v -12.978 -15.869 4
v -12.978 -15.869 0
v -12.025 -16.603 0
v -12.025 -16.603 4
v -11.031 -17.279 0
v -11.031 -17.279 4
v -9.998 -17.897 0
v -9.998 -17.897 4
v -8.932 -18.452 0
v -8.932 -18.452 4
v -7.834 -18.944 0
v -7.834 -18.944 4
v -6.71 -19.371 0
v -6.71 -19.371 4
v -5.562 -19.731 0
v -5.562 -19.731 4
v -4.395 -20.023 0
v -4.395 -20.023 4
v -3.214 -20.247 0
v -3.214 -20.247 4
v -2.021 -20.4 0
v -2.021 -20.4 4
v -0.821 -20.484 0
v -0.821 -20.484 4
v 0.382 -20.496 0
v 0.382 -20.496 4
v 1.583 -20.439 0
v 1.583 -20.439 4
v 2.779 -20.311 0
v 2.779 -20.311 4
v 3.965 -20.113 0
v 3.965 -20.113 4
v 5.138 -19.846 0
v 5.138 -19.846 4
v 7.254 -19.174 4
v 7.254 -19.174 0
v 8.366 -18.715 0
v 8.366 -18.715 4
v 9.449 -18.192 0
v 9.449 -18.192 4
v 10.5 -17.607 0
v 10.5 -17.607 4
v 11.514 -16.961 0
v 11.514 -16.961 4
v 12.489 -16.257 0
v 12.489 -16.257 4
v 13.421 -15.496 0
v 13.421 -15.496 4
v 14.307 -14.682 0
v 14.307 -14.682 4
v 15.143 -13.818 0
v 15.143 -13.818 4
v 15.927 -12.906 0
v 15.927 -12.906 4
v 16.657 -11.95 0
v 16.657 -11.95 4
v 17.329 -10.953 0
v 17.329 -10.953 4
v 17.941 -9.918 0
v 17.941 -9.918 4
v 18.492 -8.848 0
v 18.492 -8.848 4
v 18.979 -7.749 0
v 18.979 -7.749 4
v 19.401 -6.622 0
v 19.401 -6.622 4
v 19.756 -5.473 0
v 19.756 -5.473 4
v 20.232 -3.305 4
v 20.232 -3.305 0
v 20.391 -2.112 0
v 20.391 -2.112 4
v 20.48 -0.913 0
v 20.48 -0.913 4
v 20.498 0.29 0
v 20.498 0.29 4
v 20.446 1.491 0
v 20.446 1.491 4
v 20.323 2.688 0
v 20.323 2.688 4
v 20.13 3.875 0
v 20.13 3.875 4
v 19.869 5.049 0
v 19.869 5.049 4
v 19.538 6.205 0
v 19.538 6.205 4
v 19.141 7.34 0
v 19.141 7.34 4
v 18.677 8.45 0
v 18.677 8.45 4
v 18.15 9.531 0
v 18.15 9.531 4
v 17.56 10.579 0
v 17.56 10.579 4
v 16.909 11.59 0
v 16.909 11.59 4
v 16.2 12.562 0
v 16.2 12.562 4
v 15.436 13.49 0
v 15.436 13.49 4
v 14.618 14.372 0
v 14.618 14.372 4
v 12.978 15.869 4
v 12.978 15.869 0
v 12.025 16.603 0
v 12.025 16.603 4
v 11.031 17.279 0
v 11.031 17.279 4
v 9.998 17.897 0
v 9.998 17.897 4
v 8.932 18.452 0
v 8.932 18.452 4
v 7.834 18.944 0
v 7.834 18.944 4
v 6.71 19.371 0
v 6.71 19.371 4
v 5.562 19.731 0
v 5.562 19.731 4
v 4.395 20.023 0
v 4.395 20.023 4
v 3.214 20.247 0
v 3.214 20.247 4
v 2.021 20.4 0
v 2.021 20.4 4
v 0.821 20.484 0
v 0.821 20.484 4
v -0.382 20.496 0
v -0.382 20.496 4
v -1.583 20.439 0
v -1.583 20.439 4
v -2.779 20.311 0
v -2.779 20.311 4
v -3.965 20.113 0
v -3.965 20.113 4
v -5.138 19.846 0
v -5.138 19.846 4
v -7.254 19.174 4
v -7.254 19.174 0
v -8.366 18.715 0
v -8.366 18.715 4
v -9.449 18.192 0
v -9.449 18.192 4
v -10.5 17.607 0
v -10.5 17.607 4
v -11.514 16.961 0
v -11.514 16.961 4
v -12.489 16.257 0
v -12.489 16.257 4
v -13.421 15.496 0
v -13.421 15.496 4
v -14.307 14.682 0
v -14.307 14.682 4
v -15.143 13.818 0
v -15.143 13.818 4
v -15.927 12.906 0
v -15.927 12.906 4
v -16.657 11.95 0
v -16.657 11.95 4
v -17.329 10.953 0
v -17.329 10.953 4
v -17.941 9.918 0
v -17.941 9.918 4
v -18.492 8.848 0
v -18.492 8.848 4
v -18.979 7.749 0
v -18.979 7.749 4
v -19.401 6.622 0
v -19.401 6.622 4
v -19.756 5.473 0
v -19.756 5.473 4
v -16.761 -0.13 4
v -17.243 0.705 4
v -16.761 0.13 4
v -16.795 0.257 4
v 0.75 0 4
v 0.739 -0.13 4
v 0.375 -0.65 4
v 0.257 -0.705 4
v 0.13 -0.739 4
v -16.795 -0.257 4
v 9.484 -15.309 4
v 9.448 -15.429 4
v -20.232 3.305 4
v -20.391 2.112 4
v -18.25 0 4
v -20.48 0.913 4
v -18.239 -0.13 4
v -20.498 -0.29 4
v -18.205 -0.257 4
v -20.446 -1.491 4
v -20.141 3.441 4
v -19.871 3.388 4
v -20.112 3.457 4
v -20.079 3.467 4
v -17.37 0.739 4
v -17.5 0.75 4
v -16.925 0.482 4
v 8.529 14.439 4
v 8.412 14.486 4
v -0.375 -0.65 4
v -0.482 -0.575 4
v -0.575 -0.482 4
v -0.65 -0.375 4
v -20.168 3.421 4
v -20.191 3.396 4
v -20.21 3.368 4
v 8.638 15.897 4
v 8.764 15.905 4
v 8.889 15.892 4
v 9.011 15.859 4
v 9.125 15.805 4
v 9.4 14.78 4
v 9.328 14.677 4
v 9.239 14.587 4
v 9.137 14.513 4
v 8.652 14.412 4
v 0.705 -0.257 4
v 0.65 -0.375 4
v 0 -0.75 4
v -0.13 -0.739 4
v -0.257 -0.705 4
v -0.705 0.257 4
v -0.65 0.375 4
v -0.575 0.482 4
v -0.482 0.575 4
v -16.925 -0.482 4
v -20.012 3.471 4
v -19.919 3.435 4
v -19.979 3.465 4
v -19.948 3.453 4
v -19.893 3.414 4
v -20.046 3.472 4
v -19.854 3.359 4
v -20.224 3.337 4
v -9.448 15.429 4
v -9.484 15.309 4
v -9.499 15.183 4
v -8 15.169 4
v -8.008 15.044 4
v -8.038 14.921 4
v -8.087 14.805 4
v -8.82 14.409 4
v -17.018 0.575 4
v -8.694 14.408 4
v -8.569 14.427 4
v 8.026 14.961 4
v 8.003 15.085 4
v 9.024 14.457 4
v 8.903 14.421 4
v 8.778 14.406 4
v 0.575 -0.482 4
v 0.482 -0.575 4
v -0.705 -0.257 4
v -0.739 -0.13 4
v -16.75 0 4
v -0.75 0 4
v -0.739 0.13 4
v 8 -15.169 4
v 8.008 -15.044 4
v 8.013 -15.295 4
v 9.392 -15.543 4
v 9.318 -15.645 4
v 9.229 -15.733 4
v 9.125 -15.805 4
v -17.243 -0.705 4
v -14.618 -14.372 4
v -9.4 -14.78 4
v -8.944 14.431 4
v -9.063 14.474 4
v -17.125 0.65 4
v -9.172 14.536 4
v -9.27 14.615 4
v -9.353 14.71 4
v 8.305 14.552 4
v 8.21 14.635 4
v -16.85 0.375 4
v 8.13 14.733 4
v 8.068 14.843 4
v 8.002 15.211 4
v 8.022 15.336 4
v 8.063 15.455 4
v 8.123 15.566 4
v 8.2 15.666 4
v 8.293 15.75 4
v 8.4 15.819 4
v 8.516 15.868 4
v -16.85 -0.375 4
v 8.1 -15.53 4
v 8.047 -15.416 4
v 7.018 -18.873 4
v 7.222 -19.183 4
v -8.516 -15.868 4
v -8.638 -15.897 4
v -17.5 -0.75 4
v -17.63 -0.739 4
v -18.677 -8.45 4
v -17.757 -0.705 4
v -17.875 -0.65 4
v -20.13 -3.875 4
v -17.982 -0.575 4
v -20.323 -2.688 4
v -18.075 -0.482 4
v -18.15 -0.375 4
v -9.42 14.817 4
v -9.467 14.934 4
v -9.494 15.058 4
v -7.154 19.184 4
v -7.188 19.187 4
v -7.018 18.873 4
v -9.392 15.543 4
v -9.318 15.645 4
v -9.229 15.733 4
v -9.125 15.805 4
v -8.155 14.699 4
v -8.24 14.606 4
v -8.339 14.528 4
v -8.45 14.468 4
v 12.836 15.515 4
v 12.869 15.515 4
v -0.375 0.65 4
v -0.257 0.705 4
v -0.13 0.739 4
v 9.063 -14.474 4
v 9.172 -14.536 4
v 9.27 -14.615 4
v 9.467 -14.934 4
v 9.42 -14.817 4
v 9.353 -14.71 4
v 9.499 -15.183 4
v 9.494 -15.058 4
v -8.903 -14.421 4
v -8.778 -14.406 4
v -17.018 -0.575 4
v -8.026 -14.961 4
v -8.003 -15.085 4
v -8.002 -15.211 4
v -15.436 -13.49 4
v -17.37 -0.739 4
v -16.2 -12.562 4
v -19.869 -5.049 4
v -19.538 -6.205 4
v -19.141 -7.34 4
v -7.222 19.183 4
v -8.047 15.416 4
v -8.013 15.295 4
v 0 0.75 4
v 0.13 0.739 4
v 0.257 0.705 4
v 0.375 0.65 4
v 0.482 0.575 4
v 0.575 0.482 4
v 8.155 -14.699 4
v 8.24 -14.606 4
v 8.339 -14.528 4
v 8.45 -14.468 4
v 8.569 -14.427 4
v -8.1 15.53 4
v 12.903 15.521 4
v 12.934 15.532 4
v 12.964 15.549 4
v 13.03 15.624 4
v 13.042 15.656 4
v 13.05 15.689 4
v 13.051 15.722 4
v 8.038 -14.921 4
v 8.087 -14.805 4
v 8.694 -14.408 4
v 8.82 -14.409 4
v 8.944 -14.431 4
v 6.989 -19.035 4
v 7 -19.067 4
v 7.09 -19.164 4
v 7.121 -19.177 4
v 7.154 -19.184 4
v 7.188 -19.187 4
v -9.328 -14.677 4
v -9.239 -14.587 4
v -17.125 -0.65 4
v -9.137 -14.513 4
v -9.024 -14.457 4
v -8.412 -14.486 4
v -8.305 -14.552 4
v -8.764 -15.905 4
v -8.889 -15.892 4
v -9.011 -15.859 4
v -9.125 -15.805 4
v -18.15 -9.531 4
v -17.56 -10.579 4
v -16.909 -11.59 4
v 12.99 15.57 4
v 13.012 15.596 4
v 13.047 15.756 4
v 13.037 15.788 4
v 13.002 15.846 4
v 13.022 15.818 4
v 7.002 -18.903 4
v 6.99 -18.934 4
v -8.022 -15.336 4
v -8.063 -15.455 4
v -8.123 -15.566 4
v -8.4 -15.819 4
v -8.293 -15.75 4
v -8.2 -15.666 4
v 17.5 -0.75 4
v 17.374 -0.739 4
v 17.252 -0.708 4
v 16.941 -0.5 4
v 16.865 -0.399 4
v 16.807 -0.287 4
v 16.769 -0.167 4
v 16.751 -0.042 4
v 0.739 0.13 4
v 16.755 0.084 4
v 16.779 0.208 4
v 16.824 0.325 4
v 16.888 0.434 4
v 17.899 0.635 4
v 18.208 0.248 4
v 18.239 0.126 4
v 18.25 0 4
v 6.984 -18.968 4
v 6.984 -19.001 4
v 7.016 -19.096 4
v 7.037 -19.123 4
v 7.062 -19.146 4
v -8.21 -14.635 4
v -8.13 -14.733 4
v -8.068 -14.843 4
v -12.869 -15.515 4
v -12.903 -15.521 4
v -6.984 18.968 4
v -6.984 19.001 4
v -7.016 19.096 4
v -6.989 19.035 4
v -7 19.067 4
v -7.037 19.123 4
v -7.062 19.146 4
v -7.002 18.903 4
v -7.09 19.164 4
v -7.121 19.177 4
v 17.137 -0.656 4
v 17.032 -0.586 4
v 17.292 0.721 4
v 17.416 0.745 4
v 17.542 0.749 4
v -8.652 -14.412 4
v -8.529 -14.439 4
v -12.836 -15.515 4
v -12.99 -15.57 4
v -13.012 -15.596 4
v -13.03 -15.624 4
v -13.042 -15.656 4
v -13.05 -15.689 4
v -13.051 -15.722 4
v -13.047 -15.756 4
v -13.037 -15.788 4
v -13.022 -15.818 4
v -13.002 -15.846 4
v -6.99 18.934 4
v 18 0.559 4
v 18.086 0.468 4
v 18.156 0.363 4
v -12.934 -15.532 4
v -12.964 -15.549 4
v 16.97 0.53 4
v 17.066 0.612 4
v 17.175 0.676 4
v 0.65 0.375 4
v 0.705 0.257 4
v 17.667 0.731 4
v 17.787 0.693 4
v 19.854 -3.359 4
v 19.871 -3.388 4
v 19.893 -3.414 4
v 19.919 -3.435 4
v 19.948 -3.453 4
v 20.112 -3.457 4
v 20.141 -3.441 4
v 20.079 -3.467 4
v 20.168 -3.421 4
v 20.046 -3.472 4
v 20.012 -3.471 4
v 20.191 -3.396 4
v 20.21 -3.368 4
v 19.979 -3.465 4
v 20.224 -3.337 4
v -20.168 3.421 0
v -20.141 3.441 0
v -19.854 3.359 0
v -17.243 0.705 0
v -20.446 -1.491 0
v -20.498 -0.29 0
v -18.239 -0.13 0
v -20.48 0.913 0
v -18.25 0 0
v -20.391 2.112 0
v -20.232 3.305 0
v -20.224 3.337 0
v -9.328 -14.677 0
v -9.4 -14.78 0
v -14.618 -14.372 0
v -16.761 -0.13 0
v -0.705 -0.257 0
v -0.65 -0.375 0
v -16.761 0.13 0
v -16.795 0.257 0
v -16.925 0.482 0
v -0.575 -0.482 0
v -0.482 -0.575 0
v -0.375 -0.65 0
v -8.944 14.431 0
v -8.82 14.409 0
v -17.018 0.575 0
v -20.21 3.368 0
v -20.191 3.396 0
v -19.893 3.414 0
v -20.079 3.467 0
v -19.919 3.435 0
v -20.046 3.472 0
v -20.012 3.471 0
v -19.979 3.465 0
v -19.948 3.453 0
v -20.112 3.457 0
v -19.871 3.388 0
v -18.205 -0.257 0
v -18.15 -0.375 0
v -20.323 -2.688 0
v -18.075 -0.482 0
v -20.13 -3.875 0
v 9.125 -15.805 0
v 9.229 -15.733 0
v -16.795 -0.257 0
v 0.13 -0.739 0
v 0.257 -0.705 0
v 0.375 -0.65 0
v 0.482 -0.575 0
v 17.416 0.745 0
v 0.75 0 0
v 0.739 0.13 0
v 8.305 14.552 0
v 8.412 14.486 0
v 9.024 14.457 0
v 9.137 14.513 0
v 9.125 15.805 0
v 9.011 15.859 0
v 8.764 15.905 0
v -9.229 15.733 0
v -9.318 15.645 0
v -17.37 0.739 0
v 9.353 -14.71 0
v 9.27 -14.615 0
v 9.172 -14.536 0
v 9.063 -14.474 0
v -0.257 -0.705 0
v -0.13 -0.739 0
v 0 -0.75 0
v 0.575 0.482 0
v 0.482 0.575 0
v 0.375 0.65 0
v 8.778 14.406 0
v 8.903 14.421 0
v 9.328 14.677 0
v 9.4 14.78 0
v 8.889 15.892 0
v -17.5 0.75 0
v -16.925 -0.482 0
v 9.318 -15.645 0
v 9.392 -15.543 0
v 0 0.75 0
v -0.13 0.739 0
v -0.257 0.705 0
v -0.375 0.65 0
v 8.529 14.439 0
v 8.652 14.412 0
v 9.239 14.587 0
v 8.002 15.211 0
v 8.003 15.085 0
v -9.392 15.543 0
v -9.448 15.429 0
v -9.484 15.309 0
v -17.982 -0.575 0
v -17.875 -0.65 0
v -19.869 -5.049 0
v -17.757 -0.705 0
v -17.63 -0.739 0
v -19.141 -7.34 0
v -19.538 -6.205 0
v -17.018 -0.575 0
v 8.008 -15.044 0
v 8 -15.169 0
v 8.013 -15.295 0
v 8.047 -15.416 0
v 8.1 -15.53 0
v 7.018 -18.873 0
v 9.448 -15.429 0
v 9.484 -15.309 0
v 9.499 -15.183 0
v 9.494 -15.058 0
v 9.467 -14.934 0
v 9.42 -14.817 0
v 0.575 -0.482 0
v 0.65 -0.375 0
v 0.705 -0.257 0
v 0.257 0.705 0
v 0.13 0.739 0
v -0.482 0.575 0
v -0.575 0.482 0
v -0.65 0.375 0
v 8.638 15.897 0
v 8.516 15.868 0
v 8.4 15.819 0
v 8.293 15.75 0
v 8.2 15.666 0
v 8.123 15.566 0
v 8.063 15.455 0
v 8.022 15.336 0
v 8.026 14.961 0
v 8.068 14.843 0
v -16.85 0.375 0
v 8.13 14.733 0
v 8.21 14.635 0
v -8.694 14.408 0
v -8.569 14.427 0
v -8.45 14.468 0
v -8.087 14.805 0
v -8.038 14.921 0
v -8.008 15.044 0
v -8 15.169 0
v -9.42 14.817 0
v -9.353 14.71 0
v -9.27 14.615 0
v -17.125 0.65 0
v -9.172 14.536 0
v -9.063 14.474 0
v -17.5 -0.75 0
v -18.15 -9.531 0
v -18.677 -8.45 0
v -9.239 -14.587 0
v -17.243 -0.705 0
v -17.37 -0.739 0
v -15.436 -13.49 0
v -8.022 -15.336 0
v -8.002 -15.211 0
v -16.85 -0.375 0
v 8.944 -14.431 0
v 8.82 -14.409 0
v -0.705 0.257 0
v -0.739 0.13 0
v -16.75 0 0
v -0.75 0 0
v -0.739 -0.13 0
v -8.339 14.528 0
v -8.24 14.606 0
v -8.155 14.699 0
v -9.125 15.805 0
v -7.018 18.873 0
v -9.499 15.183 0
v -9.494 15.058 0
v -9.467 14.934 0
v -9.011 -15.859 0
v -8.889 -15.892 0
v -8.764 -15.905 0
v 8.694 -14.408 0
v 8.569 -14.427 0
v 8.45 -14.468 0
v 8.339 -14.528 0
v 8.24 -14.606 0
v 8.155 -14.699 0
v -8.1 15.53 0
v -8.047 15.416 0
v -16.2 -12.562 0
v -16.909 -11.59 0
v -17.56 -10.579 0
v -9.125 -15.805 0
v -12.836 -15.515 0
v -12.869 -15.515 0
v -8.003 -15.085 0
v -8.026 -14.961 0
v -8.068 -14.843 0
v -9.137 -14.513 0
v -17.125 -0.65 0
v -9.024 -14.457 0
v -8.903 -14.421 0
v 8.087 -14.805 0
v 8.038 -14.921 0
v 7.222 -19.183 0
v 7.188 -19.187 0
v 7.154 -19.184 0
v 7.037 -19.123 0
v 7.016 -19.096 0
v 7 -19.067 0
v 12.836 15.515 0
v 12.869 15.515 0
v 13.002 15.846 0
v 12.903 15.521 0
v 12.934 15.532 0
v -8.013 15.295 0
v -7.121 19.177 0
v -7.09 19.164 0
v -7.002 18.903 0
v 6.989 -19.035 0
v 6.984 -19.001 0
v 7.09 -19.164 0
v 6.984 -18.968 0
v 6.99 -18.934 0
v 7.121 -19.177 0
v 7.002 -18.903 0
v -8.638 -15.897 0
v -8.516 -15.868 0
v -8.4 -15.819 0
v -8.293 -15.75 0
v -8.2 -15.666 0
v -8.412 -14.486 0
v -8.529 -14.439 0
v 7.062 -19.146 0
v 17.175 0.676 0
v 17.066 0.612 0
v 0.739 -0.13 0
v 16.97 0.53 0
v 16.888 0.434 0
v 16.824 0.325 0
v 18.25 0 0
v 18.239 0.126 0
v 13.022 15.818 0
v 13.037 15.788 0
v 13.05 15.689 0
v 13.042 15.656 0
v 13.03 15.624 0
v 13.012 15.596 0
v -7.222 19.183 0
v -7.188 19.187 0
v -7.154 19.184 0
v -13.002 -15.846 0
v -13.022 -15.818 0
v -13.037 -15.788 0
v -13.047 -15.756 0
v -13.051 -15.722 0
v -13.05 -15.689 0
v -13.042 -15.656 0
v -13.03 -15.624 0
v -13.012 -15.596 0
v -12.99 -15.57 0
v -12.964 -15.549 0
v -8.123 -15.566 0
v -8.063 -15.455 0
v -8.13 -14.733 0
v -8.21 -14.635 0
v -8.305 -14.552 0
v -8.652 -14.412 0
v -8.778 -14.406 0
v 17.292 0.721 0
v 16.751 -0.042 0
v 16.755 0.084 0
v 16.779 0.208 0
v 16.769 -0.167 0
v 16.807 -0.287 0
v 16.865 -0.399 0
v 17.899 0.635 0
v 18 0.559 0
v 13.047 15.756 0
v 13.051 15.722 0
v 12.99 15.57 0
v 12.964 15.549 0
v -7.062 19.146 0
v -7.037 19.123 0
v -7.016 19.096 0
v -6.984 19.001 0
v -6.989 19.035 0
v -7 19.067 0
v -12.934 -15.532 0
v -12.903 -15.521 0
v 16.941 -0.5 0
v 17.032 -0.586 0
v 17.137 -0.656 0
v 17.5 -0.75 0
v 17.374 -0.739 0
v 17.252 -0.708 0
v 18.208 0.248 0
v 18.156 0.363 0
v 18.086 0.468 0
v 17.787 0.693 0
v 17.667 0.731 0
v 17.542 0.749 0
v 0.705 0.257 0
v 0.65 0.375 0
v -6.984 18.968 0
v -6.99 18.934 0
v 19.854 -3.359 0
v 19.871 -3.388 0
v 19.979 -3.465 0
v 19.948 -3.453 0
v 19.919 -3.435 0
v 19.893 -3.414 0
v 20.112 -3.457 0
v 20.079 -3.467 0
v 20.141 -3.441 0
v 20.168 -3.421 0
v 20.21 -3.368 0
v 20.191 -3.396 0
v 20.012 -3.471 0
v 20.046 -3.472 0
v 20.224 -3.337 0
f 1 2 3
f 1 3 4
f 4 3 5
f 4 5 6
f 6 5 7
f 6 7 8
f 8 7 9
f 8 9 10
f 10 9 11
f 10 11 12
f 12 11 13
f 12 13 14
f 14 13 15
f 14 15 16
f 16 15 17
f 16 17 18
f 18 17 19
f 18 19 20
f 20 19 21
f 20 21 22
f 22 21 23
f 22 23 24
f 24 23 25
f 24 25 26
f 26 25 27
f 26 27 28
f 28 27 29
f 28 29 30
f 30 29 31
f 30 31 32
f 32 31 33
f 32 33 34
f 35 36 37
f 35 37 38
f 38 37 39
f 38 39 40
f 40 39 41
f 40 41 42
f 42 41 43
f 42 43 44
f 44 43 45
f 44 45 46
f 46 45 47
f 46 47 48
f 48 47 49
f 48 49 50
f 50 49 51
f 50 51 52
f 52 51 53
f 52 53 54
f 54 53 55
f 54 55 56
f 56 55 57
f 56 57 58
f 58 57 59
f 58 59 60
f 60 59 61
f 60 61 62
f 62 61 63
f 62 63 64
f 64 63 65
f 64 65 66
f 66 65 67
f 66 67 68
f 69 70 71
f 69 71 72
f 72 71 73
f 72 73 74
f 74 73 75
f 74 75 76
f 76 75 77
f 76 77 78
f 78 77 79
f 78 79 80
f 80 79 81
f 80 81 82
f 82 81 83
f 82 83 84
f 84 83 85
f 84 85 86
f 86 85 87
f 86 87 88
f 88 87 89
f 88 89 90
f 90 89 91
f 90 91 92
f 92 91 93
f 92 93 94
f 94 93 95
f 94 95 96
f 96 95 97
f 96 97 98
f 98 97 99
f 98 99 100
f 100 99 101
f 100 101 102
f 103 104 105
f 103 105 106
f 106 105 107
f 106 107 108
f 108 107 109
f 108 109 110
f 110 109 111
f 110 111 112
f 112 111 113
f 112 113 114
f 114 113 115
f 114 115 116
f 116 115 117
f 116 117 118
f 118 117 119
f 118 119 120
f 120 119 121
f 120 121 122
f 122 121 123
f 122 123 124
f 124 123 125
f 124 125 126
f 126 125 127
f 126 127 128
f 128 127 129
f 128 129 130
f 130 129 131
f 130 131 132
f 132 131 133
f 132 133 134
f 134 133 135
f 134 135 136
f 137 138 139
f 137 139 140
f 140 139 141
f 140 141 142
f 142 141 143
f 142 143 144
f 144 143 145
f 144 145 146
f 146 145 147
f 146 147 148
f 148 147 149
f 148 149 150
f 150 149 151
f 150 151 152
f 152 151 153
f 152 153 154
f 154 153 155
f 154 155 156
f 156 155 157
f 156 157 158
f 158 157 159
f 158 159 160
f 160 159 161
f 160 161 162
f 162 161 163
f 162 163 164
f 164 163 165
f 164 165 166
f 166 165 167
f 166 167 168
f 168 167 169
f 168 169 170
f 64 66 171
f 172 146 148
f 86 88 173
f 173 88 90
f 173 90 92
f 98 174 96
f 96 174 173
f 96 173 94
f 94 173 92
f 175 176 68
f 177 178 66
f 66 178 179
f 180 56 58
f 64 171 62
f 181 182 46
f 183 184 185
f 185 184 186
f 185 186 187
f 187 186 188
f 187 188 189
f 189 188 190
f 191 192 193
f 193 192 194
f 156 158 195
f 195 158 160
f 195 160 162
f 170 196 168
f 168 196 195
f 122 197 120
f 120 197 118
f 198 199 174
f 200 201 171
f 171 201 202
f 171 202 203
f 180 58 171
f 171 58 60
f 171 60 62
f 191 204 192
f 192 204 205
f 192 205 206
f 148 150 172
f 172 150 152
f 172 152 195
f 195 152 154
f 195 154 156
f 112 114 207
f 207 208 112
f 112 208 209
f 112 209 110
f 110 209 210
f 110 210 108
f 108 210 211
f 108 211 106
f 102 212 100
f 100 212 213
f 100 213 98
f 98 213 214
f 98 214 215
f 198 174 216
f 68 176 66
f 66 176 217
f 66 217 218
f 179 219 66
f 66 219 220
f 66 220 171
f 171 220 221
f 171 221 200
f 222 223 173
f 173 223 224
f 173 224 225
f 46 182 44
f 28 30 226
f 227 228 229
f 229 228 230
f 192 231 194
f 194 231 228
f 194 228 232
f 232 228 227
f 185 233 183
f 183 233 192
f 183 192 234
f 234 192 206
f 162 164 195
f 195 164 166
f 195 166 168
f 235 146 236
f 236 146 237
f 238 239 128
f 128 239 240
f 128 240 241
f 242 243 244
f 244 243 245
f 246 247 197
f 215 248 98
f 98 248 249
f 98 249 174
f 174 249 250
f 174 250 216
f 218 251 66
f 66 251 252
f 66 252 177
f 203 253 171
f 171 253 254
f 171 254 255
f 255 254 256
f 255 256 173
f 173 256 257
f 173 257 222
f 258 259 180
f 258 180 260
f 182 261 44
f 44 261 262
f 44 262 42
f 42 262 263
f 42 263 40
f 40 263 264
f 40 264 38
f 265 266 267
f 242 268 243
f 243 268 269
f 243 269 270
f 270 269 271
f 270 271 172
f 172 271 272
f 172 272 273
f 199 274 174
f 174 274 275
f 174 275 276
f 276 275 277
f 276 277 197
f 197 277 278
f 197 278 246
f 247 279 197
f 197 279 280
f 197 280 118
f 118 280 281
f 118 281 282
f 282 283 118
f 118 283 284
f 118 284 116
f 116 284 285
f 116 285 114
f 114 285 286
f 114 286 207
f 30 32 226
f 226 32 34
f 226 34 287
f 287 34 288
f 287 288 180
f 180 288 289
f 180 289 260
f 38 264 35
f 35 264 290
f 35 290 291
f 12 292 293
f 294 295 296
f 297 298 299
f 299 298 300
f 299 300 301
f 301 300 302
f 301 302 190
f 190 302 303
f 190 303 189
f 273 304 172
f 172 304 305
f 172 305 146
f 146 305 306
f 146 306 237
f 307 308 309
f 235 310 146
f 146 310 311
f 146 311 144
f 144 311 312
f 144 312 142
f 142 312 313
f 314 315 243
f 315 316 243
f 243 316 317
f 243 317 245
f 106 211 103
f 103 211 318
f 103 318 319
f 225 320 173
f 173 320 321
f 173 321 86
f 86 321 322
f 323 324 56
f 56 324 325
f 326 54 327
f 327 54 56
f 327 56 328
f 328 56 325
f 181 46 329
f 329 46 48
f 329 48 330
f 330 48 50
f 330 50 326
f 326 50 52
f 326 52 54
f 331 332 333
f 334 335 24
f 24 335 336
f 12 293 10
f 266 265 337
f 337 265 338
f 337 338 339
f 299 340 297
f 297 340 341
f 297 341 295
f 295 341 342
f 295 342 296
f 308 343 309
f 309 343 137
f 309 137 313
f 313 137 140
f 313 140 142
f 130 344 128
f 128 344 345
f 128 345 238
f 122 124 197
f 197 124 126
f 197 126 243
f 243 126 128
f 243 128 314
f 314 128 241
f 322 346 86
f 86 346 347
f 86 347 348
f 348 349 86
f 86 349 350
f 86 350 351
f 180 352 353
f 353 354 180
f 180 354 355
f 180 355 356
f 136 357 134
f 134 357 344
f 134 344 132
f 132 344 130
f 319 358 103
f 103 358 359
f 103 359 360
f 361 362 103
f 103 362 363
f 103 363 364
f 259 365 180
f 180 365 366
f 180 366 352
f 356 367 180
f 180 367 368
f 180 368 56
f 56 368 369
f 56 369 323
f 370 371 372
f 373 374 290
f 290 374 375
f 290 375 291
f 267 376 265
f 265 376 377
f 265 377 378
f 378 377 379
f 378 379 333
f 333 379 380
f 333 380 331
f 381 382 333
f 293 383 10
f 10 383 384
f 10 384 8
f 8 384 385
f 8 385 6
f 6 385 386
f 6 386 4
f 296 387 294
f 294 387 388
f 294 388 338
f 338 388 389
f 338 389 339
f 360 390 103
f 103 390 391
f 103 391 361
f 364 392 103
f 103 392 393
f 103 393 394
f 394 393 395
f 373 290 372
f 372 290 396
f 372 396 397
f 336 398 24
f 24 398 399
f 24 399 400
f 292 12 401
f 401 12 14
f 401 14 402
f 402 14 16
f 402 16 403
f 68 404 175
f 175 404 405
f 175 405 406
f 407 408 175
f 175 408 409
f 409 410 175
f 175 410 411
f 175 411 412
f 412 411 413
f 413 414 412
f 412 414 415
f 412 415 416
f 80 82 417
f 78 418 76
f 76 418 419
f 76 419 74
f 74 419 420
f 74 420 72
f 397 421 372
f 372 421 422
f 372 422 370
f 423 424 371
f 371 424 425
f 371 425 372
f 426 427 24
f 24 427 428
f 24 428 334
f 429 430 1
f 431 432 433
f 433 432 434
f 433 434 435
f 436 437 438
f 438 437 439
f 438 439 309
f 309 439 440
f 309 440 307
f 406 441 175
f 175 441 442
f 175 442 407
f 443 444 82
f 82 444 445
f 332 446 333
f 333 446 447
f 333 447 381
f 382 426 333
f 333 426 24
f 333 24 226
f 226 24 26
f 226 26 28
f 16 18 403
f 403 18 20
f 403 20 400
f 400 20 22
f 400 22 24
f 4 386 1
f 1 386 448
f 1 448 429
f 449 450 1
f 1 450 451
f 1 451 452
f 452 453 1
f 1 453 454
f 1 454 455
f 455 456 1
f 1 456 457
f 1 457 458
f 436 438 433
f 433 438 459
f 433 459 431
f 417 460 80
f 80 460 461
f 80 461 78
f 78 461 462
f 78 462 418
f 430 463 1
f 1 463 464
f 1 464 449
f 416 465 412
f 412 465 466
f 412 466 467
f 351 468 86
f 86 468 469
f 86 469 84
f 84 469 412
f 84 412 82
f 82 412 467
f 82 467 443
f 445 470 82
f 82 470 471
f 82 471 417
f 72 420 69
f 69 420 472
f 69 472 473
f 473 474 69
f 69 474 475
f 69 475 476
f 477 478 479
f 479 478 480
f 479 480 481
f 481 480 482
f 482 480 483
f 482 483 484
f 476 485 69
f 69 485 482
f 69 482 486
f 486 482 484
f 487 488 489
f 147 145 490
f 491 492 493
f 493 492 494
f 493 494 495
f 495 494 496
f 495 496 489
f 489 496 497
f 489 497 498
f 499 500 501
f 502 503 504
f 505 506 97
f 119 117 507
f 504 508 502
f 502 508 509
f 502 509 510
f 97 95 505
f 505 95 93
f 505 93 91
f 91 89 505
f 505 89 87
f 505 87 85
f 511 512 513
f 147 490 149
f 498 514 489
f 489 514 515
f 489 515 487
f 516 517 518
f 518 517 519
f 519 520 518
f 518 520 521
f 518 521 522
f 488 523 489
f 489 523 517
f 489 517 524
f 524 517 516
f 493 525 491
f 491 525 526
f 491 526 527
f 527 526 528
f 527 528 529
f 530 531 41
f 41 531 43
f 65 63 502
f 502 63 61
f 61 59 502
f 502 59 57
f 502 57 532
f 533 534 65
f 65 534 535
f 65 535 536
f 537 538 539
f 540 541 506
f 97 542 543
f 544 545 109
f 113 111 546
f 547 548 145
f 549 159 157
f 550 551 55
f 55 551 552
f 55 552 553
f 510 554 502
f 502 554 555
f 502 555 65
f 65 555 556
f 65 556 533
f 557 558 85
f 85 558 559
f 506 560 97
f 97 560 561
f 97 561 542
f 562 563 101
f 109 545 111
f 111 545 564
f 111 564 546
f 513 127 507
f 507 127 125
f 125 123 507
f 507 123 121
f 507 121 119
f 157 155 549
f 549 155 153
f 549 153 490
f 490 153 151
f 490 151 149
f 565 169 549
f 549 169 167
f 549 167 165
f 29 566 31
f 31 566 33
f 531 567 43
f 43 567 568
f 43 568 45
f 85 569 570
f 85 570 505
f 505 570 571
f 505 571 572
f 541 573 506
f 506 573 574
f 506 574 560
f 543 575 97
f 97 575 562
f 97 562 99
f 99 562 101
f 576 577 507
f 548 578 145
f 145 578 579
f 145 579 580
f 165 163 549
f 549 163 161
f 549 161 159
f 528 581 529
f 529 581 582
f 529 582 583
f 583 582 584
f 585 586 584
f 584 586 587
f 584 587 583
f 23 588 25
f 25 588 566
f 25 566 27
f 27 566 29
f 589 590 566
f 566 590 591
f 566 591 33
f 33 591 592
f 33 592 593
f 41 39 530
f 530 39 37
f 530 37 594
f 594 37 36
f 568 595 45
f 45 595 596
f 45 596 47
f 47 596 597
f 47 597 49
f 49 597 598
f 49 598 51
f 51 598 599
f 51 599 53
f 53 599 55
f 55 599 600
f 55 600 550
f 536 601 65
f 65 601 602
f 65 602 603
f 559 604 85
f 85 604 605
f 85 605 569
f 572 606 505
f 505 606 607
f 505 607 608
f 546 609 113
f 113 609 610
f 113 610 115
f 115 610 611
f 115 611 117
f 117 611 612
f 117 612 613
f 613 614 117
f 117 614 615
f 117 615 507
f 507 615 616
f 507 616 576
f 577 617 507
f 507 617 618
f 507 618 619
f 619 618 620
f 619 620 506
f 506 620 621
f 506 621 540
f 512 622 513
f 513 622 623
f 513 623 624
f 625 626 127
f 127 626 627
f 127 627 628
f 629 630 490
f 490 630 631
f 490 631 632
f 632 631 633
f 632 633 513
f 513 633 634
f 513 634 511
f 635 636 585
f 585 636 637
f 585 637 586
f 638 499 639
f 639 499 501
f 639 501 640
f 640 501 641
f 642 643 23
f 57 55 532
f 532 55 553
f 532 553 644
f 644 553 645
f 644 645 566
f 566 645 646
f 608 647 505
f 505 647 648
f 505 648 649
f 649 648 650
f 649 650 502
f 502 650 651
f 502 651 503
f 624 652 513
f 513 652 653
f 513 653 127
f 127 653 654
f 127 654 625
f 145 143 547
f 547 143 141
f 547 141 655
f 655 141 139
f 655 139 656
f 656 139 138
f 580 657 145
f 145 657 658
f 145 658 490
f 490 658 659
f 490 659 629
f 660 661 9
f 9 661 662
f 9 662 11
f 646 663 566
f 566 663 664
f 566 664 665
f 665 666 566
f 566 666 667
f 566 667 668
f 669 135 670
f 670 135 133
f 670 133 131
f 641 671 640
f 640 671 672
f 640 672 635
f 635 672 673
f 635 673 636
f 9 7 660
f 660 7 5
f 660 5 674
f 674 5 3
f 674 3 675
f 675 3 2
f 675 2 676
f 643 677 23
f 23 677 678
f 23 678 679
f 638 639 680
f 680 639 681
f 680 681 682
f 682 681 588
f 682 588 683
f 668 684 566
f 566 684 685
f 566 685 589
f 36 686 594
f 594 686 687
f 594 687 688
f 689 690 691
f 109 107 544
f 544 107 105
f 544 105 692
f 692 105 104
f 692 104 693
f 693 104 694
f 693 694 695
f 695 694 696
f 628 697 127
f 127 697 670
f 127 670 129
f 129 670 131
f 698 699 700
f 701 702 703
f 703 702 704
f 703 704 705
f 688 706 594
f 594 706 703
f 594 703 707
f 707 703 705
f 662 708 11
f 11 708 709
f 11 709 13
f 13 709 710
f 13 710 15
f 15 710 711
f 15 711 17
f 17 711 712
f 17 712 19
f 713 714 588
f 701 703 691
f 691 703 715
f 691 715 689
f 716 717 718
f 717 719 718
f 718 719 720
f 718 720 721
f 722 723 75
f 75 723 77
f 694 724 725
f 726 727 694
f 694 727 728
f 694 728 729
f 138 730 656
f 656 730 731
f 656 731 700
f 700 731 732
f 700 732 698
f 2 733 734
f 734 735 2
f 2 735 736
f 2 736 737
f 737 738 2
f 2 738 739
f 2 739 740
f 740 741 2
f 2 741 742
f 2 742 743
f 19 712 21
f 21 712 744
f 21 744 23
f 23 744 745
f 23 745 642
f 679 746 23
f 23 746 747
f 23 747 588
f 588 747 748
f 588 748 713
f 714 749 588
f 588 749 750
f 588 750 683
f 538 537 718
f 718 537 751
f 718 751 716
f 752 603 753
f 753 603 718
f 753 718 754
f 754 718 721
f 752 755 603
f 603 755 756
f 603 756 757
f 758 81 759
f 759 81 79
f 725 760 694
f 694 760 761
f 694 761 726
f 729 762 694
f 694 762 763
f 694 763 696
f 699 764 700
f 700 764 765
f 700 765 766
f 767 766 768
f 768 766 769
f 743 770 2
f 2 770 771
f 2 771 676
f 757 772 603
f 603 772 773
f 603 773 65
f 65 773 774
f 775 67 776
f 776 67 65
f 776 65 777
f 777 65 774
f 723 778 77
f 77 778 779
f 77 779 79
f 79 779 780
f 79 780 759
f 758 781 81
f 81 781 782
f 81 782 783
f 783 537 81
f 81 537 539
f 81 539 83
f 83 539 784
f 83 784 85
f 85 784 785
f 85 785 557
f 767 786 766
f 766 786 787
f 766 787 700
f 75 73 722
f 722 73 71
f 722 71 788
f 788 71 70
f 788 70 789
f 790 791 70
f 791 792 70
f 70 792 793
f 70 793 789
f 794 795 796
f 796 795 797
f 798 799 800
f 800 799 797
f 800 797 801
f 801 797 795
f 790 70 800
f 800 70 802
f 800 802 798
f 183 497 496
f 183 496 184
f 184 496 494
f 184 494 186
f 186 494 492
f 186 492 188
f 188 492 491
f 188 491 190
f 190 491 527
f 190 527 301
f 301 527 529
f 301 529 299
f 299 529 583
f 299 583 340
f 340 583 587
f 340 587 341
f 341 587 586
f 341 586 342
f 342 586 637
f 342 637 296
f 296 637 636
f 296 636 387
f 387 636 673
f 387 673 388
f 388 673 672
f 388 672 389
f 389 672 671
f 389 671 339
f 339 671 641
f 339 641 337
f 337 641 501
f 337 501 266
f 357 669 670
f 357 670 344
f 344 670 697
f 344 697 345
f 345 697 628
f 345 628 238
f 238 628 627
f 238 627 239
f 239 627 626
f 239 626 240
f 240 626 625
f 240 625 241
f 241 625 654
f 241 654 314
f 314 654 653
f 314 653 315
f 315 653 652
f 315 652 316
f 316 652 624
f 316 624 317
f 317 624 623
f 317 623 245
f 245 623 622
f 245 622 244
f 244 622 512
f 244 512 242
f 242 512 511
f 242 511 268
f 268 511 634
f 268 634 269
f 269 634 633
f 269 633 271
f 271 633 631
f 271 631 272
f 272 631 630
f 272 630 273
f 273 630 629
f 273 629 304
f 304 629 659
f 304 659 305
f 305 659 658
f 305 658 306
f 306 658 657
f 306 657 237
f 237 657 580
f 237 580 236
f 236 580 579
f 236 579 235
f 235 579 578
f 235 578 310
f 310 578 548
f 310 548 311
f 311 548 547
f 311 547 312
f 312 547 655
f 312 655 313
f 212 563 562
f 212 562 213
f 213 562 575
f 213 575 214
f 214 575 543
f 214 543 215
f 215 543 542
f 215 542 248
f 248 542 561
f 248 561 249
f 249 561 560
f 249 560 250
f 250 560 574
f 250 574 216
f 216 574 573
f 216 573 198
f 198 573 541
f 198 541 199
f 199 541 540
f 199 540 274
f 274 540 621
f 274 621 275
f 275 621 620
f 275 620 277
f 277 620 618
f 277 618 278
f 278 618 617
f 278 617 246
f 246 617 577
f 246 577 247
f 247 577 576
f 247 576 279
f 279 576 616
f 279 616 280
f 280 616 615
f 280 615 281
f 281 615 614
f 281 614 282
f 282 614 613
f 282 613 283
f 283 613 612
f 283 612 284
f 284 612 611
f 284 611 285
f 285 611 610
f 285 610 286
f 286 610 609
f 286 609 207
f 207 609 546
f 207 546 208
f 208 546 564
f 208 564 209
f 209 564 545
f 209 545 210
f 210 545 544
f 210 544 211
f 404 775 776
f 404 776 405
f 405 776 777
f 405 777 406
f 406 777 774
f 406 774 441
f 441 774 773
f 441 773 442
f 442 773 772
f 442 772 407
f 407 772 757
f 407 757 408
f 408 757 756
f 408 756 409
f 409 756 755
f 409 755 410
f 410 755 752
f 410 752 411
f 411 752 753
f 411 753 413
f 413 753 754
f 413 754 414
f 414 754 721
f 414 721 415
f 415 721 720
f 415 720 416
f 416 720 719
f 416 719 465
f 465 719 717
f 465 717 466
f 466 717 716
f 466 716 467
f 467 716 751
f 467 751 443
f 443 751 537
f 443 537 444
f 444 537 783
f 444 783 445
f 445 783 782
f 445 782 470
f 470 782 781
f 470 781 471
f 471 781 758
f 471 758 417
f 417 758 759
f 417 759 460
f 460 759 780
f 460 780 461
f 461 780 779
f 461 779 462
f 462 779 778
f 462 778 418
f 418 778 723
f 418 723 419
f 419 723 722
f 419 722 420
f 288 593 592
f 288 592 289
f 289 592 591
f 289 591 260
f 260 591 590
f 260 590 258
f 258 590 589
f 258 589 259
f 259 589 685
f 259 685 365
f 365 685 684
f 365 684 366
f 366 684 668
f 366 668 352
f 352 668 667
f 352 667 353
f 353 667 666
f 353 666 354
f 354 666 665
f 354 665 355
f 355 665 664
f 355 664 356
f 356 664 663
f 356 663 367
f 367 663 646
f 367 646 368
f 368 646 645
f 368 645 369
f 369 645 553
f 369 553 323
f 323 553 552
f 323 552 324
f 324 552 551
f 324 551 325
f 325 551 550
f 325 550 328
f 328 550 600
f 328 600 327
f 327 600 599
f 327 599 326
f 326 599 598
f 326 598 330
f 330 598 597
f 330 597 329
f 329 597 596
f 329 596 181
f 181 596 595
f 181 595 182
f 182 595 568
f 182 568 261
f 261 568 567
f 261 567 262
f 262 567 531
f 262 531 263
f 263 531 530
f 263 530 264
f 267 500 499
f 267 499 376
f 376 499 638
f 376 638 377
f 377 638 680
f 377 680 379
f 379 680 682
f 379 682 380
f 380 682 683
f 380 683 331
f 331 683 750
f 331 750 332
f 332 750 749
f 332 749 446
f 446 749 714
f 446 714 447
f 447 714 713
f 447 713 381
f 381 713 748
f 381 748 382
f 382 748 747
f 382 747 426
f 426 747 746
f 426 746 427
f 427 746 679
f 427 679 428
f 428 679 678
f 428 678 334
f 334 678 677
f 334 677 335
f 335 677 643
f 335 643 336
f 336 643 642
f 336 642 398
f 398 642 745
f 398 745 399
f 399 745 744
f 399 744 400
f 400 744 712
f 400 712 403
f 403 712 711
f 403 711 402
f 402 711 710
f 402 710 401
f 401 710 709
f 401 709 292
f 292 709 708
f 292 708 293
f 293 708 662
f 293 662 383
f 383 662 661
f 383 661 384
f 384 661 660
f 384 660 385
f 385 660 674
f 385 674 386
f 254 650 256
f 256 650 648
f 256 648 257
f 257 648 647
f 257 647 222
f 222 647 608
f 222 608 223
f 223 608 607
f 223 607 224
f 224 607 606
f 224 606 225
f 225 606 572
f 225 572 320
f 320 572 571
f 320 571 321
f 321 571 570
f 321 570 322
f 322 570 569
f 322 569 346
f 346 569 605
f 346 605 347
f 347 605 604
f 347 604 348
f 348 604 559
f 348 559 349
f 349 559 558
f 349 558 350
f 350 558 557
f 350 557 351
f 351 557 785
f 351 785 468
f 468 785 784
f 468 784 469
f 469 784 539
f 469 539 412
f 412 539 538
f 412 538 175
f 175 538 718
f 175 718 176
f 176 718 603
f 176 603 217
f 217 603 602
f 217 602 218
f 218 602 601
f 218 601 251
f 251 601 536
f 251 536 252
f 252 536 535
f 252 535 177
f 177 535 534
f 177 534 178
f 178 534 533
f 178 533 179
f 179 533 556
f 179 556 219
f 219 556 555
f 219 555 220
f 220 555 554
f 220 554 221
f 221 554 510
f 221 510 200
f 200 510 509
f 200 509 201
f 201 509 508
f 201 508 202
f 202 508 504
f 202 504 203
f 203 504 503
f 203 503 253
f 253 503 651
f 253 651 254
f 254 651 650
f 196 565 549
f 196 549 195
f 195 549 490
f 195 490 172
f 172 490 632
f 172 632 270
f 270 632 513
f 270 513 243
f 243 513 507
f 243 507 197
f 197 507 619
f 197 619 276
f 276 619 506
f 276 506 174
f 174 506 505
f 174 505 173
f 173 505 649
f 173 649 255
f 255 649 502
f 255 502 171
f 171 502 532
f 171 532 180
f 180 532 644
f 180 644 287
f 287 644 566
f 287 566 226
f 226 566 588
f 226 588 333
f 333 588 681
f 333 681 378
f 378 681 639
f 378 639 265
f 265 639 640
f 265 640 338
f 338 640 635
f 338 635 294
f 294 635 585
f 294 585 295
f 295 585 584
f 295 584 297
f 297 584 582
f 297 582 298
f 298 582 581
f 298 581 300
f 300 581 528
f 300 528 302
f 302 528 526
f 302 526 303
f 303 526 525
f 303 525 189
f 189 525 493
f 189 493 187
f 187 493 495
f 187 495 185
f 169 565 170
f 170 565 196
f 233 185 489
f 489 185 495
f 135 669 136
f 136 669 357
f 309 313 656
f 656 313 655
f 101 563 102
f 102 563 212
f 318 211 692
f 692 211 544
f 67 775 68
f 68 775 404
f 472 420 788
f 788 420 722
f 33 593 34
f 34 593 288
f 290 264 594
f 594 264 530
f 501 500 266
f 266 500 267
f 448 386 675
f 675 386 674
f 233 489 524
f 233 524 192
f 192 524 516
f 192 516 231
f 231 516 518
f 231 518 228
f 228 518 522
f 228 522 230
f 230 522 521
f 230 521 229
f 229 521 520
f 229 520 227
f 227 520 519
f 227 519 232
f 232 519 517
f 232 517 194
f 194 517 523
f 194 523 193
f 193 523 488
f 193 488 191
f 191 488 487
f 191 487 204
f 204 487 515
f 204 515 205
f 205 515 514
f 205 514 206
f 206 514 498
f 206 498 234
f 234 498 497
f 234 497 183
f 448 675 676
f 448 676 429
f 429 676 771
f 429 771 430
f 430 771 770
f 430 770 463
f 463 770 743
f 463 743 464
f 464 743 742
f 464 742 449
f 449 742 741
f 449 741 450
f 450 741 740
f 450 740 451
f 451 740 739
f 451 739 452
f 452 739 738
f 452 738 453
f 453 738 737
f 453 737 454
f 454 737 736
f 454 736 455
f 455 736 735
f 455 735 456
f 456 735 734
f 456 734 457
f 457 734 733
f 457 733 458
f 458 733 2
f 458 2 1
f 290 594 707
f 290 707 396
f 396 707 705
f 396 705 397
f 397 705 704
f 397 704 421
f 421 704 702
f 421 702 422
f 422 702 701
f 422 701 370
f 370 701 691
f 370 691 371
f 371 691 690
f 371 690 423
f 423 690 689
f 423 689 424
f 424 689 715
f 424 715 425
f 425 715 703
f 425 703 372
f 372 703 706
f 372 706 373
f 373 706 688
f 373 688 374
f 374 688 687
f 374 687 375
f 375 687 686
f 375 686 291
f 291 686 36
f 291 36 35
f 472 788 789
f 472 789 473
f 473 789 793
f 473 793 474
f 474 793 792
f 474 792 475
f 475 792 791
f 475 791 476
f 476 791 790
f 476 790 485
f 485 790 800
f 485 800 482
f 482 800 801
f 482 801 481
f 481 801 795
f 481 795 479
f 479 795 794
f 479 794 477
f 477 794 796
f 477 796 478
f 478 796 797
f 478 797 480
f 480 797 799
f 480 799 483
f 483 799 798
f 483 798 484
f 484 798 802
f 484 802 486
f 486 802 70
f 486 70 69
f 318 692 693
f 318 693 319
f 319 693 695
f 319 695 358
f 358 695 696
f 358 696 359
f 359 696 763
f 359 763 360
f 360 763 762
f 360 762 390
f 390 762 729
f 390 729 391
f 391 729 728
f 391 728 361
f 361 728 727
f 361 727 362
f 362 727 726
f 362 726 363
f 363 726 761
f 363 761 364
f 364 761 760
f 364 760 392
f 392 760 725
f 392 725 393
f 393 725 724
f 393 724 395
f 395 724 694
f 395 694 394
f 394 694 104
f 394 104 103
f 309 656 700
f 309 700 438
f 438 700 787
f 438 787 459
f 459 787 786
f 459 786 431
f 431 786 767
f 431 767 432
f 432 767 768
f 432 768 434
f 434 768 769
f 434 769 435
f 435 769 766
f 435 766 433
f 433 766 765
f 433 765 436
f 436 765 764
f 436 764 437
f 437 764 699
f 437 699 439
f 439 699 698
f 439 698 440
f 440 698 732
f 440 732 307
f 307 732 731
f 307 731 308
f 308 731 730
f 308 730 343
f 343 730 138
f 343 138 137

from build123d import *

# Parameters (mm, degrees)
MODEL_R                        = 20.5
MODEL_R_2                      = 0.75
MAIN_DIFFERENTIAL_DISK_DEPTH   = 4
TENDON_HOLDER_DEPTH            = 5
DIFFERENTIAL_DISK_CONTOURING_R = 0.2


with BuildPart() as part:
    # Model → Main Differential Disk (new body)
    with BuildSketch(Plane.XY):
        Circle(MODEL_R)
        with Locations((-8.75, 15.155444566)):
            Circle(MODEL_R_2, mode=Mode.SUBTRACT)
        with Locations((8.75, 15.155444566)):
            Circle(MODEL_R_2, mode=Mode.SUBTRACT)
        with Locations((17.5, 0)):
            Circle(MODEL_R_2, mode=Mode.SUBTRACT)
        with Locations((8.75, -15.155444566)):
            Circle(MODEL_R_2, mode=Mode.SUBTRACT)
        with Locations((-8.75, -15.155444566)):
            Circle(MODEL_R_2, mode=Mode.SUBTRACT)
        Circle(MODEL_R_2, mode=Mode.SUBTRACT)
        with Locations((-17.5, 0)):
            Circle(MODEL_R_2, mode=Mode.SUBTRACT)
    extrude(amount=MAIN_DIFFERENTIAL_DISK_DEPTH)

    # Sketch1 → Tendon Holder (cut, through all)
    with BuildSketch(Plane.XY.offset(4)):
        with BuildLine():
            Line((-18.25, 0), (-20.121847663, 3.919342625))
            ThreePointArc((-20.121847663, 3.919342625), (-19.953970316, 4.699900916), (-19.755825892, 5.473330187))
            Line((-19.755825892, 5.473330187), (-17.5, 0.75))
            ThreePointArc((-17.5, 0.75), (-16.969669914, -0.530330086), (-18.25, 0))
        make_face()
        with BuildLine():
            Line((-9.125, 15.804963619), (-6.666673552, 19.38570256))
            ThreePointArc((-6.666673552, 19.38570256), (-5.906751569, 19.630595658), (-5.137869961, 19.845712188))
            Line((-5.137869961, 19.845712188), (-8.100480947, 15.530444566))
            ThreePointArc((-8.100480947, 15.530444566), (-8.944114284, 14.431000197), (-9.125, 15.804963619))
        make_face()
        with BuildLine():
            Line((9.125, 15.804963619), (13.455174111, 15.466359935))
            ThreePointArc((13.455174111, 15.466359935), (14.047218747, 14.930694742), (14.617955931, 14.372382002))
            Line((14.617955931, 14.372382002), (9.399519053, 14.780444566))
            ThreePointArc((9.399519053, 14.780444566), (8.02555563, 14.961330282), (9.125, 15.804963619))
        make_face()
        with BuildLine():
            Line((18.25, 0), (20.121847663, -3.919342625))
            ThreePointArc((20.121847663, -3.919342625), (19.953970316, -4.699900916), (19.755825892, -5.473330187))
            Line((19.755825892, -5.473330187), (17.5, -0.75))
            ThreePointArc((17.5, -0.75), (16.969669914, 0.530330086), (18.25, 0))
        make_face()
        with BuildLine():
            Line((9.125, -15.804963619), (6.666673552, -19.38570256))
            ThreePointArc((6.666673552, -19.38570256), (5.906751569, -19.630595658), (5.137869961, -19.845712188))
            Line((5.137869961, -19.845712188), (8.100480947, -15.530444566))
            ThreePointArc((8.100480947, -15.530444566), (8.944114284, -14.431000197), (9.125, -15.804963619))
        make_face()
        with BuildLine():
            Line((-9.125, -15.804963619), (-13.455174111, -15.466359935))
            ThreePointArc((-13.455174111, -15.466359935), (-14.047218747, -14.930694742), (-14.617955931, -14.372382002))
            Line((-14.617955931, -14.372382002), (-9.399519053, -14.780444566))
            ThreePointArc((-9.399519053, -14.780444566), (-8.02555563, -14.961330282), (-9.125, -15.804963619))
        make_face()
    extrude(amount=-TENDON_HOLDER_DEPTH, mode=Mode.SUBTRACT)

    # Differential Disk Contouring
    differential_disk_contouring_edges = [part.edges().sort_by_distance(p)[0] for p in [
        (6.666673552, -19.38570256, 2),
        (-13.455174111, -15.466359935, 2),
        (-20.121847663, 3.919342625, 2),
        (-6.666673552, 19.38570256, 2),
        (13.455174111, 15.466359935, 2),
        (20.121847663, -3.919342625, 2),
    ]]
    fillet(differential_disk_contouring_edges, radius=DIFFERENTIAL_DISK_CONTOURING_R)


solid = part.part
